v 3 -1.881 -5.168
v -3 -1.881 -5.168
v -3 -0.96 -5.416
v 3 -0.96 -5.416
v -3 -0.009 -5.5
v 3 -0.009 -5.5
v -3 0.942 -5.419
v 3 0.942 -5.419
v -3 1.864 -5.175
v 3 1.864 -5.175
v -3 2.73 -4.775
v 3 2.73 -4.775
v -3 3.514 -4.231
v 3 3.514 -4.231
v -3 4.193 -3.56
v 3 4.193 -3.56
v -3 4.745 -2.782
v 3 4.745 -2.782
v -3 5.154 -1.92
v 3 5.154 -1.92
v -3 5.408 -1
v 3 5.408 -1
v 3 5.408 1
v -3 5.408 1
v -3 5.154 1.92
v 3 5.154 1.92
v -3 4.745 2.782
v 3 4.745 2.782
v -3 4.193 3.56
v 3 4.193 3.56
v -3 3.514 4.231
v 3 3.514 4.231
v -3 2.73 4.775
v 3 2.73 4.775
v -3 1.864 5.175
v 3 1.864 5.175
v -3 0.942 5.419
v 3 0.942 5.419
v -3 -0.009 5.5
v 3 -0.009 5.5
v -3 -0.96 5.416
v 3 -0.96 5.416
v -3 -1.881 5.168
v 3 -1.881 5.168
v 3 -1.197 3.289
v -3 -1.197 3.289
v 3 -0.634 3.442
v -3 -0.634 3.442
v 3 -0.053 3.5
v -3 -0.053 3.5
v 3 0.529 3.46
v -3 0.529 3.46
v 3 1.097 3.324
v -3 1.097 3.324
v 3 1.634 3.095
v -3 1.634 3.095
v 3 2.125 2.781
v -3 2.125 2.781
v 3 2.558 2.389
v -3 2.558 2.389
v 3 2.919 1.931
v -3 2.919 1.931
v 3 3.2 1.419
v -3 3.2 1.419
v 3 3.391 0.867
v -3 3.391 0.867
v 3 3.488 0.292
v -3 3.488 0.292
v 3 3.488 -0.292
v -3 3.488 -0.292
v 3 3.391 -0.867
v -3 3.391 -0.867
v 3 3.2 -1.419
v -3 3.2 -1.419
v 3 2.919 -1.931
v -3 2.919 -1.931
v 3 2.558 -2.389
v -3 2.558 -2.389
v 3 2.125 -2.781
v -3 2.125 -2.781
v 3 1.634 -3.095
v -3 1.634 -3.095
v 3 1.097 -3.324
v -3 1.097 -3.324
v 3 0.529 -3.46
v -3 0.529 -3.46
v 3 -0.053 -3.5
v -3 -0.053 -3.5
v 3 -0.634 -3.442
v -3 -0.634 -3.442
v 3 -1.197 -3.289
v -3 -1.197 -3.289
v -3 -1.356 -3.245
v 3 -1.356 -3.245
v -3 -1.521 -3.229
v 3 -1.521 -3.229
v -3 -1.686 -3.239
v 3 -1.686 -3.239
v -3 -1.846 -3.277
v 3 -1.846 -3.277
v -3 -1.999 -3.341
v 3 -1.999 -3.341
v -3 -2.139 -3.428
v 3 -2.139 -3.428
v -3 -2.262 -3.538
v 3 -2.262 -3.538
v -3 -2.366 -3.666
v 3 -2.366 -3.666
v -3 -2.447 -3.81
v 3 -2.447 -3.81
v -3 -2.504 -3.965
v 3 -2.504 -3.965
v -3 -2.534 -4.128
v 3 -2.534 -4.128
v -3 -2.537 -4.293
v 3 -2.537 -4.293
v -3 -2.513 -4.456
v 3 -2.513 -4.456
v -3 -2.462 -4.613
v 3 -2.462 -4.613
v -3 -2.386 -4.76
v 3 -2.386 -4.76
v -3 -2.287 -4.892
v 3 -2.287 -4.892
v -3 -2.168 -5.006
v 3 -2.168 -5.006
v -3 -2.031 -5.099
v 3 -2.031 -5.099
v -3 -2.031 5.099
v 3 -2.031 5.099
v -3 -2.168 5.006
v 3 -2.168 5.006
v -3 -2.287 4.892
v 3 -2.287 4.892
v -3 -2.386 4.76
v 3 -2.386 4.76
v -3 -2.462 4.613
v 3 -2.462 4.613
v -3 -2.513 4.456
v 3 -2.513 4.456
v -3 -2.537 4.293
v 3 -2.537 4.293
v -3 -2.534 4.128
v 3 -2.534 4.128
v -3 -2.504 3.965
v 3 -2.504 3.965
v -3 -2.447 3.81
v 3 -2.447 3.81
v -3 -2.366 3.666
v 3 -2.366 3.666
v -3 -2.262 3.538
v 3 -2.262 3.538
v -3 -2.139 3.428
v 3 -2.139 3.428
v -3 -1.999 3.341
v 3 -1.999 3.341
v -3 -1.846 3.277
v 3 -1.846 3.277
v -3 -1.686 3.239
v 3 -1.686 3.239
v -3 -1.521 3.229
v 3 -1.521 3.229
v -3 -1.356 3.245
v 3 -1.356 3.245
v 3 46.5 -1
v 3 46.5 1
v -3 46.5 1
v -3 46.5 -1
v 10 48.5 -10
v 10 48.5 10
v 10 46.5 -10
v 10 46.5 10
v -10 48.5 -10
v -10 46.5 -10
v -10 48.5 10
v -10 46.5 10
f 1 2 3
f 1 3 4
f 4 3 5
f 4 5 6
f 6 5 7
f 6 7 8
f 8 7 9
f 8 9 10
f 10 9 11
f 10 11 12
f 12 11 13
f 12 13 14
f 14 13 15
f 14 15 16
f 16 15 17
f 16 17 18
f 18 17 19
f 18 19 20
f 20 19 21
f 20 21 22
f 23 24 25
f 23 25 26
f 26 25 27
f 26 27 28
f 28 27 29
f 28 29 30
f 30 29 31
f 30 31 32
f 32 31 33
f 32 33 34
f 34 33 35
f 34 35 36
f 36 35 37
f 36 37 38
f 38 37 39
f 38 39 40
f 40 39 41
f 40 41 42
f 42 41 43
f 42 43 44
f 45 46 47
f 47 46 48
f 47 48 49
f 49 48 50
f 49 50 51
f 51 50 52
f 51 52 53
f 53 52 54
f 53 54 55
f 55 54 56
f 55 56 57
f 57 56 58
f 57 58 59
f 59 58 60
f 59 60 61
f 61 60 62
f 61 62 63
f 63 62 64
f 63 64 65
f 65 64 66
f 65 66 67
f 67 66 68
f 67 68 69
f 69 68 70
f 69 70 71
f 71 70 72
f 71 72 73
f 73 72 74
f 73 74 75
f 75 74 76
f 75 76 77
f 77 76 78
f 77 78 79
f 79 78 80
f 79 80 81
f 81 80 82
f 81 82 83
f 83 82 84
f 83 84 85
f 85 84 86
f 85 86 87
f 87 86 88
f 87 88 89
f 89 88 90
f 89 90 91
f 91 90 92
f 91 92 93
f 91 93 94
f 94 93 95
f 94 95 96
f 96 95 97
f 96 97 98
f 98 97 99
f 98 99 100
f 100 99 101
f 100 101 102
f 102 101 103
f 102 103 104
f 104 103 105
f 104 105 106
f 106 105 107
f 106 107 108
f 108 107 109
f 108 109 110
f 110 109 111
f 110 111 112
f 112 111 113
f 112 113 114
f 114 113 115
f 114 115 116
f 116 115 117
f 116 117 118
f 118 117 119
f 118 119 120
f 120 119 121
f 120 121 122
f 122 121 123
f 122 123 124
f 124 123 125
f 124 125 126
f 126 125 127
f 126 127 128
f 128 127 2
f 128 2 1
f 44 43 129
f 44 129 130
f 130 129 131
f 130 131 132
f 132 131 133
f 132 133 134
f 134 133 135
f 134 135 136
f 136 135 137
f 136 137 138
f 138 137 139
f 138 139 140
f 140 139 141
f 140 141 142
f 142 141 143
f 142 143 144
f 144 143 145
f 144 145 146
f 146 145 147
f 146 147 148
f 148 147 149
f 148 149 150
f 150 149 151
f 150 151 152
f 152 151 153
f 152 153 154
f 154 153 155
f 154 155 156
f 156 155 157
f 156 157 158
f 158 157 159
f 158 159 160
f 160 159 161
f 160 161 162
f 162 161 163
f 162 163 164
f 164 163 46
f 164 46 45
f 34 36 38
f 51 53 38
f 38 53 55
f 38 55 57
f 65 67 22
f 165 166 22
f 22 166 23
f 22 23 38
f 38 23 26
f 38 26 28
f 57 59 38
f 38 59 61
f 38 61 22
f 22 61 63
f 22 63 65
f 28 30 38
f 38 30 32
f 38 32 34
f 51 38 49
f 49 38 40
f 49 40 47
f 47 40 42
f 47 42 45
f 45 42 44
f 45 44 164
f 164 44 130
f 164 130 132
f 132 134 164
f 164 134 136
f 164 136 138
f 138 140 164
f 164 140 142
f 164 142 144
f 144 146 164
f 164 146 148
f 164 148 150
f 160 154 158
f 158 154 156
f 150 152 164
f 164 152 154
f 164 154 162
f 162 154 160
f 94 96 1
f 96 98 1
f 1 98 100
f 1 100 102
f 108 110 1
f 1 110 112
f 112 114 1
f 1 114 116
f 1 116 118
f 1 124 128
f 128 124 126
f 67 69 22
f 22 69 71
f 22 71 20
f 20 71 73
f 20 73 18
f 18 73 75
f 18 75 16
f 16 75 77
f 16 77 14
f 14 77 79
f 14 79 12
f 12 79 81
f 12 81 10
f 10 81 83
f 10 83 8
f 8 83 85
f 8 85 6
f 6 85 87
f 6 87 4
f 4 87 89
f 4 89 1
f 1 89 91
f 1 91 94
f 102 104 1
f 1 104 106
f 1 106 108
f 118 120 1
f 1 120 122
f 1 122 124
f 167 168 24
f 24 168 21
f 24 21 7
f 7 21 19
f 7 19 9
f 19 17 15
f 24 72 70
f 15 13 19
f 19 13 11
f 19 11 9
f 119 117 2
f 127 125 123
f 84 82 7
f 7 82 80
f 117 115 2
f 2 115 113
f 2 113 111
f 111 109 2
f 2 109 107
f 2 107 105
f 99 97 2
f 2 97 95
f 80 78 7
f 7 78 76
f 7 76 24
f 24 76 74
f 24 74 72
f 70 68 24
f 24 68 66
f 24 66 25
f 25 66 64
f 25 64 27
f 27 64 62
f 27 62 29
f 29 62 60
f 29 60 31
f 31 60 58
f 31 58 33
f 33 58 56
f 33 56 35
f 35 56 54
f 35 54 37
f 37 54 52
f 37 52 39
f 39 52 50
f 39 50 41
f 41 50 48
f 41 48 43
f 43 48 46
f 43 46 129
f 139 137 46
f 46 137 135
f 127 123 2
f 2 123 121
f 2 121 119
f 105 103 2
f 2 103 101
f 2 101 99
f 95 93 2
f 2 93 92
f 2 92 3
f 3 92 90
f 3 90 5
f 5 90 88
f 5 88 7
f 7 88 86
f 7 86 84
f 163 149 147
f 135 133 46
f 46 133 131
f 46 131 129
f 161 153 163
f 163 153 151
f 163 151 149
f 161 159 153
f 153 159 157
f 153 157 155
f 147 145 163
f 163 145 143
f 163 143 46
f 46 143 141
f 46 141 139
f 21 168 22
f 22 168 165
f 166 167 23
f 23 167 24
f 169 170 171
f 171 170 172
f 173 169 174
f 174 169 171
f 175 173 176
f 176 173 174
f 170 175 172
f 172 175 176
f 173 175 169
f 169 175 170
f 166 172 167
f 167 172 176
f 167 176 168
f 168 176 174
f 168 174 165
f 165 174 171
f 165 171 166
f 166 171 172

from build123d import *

# Parameters (mm, degrees)
BOSS_EXTRUDE1_DEPTH      = 3
BOSS_EXTRUDE1_DEPTH_BACK = 3
BOSS_EXTRUDE2_DEPTH      = 3
BOSS_EXTRUDE3_DEPTH      = 3
SKETCH4_W                = 20
SKETCH4_H                = 20
BOSS_EXTRUDE4_DEPTH      = 2


with BuildPart() as part:
    # Sketch1 → Boss-Extrude1 (new, two sides: drawn at the far end of the back side and taken through both)
    with BuildSketch(Plane(origin=(0, 0, 0), x_dir=(0, 0, -1), z_dir=(1, 0, 0)).offset(-BOSS_EXTRUDE1_DEPTH_BACK)):
        with BuildLine():
            ThreePointArc((-3.288924173, -1.197070502), (0, 3.5), (3.288924173, -1.197070502))
            ThreePointArc((3.288924173, -1.197070502), (3.88659665, -2.478783266), (5.168309414, -1.881110788))
            ThreePointArc((5.168309414, -1.881110788), (0, 5.5), (-5.168309414, -1.881110788))
            ThreePointArc((-5.168309414, -1.881110788), (-3.88659665, -2.478783266), (-3.288924173, -1.197070502))
        make_face()
    extrude(amount=BOSS_EXTRUDE1_DEPTH + BOSS_EXTRUDE1_DEPTH_BACK)

    # Sketch2 → Boss-Extrude2 (add)
    with BuildSketch(Plane(origin=(0, 0, 0), x_dir=(0, 0, -1), z_dir=(1, 0, 0))):
        Polygon((-1, 3.5), (0, 3.5), (1, 3.5), (1, 46.5), (-1, 46.5), align=None)
    extrude(amount=BOSS_EXTRUDE2_DEPTH)

    # Sketch3 → Boss-Extrude3 (add)
    with BuildSketch(Plane(origin=(0, 0, 0), x_dir=(0, 0, -1), z_dir=(1, 0, 0))):
        Polygon((1, 46.5), (0, 46.5), (-1, 46.5), (-1, 3.5), (1, 3.5), align=None)
    extrude(amount=-BOSS_EXTRUDE3_DEPTH)

    # Sketch4 → Boss-Extrude4 (add)
    with BuildSketch(Plane(origin=(0, 46.5, 0), x_dir=(1, 0, 0), z_dir=(0, 1, 0))):
        Rectangle(SKETCH4_W, SKETCH4_H)
    extrude(amount=BOSS_EXTRUDE4_DEPTH)


solid = part.part
